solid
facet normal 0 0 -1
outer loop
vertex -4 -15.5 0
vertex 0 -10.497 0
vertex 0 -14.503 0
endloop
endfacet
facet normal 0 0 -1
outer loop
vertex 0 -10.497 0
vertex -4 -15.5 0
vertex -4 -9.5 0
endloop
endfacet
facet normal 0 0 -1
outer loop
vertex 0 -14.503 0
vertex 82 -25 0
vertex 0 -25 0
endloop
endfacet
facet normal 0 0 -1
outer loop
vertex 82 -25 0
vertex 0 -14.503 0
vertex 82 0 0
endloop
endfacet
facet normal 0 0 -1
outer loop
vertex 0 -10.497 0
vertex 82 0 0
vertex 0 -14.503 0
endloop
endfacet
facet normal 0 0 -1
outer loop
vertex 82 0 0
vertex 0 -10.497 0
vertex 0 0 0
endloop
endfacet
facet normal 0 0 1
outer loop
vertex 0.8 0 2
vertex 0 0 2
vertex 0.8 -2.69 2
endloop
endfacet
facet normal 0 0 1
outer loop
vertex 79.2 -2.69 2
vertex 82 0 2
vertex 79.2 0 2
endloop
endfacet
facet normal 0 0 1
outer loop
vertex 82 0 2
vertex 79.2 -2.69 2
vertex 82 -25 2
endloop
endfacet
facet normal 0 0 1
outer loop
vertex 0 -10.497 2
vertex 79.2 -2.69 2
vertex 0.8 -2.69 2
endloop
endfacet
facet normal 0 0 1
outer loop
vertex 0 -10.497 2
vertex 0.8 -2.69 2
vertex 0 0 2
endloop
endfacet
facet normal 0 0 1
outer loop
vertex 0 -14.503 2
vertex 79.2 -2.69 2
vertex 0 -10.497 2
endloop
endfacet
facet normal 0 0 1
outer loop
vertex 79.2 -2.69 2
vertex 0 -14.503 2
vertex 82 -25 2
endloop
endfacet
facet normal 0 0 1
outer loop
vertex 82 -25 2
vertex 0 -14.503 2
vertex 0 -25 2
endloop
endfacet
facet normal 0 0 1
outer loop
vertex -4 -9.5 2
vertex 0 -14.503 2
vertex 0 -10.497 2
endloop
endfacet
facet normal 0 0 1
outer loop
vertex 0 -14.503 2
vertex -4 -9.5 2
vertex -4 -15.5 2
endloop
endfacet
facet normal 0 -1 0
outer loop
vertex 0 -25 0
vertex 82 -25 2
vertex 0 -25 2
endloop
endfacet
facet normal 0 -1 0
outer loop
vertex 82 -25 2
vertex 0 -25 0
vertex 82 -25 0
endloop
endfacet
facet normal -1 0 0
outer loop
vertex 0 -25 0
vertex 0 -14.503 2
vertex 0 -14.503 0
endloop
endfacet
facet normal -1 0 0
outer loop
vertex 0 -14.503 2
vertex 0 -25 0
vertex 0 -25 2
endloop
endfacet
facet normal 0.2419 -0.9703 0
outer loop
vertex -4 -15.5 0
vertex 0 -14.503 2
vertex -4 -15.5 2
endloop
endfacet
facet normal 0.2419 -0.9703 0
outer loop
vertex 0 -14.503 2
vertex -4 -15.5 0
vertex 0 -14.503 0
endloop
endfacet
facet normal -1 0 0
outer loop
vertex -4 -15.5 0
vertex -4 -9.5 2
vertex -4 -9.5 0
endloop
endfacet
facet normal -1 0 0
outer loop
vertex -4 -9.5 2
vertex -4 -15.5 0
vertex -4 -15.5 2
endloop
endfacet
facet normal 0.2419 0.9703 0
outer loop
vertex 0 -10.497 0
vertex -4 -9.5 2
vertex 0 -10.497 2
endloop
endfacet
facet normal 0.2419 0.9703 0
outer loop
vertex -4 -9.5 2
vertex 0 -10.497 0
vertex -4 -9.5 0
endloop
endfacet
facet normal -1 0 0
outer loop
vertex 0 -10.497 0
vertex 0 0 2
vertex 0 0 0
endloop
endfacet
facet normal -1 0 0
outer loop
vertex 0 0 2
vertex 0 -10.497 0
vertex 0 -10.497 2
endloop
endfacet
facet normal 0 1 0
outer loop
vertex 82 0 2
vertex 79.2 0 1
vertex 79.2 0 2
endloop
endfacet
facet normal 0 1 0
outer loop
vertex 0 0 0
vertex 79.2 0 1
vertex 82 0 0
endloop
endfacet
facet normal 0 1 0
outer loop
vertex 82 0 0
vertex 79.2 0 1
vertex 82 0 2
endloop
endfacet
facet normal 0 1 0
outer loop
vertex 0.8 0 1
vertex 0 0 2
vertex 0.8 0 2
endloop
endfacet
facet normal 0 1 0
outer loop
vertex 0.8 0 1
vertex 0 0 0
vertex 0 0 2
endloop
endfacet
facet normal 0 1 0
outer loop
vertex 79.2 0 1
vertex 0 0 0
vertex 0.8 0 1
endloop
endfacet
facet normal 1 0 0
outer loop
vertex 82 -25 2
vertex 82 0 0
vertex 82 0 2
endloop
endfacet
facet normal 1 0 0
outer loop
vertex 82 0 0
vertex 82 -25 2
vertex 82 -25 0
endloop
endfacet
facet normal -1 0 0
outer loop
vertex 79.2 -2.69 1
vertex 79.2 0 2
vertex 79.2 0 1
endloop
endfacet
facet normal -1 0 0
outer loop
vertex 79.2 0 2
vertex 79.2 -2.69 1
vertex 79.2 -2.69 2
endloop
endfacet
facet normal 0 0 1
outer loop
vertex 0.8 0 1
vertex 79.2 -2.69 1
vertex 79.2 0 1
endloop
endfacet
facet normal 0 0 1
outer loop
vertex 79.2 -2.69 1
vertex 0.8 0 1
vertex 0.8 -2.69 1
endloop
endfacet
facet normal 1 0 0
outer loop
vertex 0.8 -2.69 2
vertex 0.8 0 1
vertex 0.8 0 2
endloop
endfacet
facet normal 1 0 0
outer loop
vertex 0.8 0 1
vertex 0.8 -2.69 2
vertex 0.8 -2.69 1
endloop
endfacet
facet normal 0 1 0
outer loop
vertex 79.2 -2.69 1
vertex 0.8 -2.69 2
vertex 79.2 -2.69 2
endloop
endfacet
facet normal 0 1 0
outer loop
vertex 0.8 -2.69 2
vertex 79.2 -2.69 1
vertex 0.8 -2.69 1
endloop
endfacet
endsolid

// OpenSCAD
// Floor_Tile_R.stl  -  Store Versile room frame (Rev C)
// Quantity: 1   Filament: Any colour (covered by the wood-grain sticker)
// Print: layer 0.2 mm, infill 15%, 2 walls, brim 0 mm, NO supports
// Orientation: flat  (as installed)
// Notes: Wood sticker on top after printing.
// The library draws parts with their front toward +Y; mirror([0,1,0]) makes the real
// part face the viewer correctly (see build.py). Edit dimensions in versile_parts.scad.
use <../versile_parts.scad>

mirror([0, 1, 0]) floor_tile(82, slot=[1,79], male_l=true);
